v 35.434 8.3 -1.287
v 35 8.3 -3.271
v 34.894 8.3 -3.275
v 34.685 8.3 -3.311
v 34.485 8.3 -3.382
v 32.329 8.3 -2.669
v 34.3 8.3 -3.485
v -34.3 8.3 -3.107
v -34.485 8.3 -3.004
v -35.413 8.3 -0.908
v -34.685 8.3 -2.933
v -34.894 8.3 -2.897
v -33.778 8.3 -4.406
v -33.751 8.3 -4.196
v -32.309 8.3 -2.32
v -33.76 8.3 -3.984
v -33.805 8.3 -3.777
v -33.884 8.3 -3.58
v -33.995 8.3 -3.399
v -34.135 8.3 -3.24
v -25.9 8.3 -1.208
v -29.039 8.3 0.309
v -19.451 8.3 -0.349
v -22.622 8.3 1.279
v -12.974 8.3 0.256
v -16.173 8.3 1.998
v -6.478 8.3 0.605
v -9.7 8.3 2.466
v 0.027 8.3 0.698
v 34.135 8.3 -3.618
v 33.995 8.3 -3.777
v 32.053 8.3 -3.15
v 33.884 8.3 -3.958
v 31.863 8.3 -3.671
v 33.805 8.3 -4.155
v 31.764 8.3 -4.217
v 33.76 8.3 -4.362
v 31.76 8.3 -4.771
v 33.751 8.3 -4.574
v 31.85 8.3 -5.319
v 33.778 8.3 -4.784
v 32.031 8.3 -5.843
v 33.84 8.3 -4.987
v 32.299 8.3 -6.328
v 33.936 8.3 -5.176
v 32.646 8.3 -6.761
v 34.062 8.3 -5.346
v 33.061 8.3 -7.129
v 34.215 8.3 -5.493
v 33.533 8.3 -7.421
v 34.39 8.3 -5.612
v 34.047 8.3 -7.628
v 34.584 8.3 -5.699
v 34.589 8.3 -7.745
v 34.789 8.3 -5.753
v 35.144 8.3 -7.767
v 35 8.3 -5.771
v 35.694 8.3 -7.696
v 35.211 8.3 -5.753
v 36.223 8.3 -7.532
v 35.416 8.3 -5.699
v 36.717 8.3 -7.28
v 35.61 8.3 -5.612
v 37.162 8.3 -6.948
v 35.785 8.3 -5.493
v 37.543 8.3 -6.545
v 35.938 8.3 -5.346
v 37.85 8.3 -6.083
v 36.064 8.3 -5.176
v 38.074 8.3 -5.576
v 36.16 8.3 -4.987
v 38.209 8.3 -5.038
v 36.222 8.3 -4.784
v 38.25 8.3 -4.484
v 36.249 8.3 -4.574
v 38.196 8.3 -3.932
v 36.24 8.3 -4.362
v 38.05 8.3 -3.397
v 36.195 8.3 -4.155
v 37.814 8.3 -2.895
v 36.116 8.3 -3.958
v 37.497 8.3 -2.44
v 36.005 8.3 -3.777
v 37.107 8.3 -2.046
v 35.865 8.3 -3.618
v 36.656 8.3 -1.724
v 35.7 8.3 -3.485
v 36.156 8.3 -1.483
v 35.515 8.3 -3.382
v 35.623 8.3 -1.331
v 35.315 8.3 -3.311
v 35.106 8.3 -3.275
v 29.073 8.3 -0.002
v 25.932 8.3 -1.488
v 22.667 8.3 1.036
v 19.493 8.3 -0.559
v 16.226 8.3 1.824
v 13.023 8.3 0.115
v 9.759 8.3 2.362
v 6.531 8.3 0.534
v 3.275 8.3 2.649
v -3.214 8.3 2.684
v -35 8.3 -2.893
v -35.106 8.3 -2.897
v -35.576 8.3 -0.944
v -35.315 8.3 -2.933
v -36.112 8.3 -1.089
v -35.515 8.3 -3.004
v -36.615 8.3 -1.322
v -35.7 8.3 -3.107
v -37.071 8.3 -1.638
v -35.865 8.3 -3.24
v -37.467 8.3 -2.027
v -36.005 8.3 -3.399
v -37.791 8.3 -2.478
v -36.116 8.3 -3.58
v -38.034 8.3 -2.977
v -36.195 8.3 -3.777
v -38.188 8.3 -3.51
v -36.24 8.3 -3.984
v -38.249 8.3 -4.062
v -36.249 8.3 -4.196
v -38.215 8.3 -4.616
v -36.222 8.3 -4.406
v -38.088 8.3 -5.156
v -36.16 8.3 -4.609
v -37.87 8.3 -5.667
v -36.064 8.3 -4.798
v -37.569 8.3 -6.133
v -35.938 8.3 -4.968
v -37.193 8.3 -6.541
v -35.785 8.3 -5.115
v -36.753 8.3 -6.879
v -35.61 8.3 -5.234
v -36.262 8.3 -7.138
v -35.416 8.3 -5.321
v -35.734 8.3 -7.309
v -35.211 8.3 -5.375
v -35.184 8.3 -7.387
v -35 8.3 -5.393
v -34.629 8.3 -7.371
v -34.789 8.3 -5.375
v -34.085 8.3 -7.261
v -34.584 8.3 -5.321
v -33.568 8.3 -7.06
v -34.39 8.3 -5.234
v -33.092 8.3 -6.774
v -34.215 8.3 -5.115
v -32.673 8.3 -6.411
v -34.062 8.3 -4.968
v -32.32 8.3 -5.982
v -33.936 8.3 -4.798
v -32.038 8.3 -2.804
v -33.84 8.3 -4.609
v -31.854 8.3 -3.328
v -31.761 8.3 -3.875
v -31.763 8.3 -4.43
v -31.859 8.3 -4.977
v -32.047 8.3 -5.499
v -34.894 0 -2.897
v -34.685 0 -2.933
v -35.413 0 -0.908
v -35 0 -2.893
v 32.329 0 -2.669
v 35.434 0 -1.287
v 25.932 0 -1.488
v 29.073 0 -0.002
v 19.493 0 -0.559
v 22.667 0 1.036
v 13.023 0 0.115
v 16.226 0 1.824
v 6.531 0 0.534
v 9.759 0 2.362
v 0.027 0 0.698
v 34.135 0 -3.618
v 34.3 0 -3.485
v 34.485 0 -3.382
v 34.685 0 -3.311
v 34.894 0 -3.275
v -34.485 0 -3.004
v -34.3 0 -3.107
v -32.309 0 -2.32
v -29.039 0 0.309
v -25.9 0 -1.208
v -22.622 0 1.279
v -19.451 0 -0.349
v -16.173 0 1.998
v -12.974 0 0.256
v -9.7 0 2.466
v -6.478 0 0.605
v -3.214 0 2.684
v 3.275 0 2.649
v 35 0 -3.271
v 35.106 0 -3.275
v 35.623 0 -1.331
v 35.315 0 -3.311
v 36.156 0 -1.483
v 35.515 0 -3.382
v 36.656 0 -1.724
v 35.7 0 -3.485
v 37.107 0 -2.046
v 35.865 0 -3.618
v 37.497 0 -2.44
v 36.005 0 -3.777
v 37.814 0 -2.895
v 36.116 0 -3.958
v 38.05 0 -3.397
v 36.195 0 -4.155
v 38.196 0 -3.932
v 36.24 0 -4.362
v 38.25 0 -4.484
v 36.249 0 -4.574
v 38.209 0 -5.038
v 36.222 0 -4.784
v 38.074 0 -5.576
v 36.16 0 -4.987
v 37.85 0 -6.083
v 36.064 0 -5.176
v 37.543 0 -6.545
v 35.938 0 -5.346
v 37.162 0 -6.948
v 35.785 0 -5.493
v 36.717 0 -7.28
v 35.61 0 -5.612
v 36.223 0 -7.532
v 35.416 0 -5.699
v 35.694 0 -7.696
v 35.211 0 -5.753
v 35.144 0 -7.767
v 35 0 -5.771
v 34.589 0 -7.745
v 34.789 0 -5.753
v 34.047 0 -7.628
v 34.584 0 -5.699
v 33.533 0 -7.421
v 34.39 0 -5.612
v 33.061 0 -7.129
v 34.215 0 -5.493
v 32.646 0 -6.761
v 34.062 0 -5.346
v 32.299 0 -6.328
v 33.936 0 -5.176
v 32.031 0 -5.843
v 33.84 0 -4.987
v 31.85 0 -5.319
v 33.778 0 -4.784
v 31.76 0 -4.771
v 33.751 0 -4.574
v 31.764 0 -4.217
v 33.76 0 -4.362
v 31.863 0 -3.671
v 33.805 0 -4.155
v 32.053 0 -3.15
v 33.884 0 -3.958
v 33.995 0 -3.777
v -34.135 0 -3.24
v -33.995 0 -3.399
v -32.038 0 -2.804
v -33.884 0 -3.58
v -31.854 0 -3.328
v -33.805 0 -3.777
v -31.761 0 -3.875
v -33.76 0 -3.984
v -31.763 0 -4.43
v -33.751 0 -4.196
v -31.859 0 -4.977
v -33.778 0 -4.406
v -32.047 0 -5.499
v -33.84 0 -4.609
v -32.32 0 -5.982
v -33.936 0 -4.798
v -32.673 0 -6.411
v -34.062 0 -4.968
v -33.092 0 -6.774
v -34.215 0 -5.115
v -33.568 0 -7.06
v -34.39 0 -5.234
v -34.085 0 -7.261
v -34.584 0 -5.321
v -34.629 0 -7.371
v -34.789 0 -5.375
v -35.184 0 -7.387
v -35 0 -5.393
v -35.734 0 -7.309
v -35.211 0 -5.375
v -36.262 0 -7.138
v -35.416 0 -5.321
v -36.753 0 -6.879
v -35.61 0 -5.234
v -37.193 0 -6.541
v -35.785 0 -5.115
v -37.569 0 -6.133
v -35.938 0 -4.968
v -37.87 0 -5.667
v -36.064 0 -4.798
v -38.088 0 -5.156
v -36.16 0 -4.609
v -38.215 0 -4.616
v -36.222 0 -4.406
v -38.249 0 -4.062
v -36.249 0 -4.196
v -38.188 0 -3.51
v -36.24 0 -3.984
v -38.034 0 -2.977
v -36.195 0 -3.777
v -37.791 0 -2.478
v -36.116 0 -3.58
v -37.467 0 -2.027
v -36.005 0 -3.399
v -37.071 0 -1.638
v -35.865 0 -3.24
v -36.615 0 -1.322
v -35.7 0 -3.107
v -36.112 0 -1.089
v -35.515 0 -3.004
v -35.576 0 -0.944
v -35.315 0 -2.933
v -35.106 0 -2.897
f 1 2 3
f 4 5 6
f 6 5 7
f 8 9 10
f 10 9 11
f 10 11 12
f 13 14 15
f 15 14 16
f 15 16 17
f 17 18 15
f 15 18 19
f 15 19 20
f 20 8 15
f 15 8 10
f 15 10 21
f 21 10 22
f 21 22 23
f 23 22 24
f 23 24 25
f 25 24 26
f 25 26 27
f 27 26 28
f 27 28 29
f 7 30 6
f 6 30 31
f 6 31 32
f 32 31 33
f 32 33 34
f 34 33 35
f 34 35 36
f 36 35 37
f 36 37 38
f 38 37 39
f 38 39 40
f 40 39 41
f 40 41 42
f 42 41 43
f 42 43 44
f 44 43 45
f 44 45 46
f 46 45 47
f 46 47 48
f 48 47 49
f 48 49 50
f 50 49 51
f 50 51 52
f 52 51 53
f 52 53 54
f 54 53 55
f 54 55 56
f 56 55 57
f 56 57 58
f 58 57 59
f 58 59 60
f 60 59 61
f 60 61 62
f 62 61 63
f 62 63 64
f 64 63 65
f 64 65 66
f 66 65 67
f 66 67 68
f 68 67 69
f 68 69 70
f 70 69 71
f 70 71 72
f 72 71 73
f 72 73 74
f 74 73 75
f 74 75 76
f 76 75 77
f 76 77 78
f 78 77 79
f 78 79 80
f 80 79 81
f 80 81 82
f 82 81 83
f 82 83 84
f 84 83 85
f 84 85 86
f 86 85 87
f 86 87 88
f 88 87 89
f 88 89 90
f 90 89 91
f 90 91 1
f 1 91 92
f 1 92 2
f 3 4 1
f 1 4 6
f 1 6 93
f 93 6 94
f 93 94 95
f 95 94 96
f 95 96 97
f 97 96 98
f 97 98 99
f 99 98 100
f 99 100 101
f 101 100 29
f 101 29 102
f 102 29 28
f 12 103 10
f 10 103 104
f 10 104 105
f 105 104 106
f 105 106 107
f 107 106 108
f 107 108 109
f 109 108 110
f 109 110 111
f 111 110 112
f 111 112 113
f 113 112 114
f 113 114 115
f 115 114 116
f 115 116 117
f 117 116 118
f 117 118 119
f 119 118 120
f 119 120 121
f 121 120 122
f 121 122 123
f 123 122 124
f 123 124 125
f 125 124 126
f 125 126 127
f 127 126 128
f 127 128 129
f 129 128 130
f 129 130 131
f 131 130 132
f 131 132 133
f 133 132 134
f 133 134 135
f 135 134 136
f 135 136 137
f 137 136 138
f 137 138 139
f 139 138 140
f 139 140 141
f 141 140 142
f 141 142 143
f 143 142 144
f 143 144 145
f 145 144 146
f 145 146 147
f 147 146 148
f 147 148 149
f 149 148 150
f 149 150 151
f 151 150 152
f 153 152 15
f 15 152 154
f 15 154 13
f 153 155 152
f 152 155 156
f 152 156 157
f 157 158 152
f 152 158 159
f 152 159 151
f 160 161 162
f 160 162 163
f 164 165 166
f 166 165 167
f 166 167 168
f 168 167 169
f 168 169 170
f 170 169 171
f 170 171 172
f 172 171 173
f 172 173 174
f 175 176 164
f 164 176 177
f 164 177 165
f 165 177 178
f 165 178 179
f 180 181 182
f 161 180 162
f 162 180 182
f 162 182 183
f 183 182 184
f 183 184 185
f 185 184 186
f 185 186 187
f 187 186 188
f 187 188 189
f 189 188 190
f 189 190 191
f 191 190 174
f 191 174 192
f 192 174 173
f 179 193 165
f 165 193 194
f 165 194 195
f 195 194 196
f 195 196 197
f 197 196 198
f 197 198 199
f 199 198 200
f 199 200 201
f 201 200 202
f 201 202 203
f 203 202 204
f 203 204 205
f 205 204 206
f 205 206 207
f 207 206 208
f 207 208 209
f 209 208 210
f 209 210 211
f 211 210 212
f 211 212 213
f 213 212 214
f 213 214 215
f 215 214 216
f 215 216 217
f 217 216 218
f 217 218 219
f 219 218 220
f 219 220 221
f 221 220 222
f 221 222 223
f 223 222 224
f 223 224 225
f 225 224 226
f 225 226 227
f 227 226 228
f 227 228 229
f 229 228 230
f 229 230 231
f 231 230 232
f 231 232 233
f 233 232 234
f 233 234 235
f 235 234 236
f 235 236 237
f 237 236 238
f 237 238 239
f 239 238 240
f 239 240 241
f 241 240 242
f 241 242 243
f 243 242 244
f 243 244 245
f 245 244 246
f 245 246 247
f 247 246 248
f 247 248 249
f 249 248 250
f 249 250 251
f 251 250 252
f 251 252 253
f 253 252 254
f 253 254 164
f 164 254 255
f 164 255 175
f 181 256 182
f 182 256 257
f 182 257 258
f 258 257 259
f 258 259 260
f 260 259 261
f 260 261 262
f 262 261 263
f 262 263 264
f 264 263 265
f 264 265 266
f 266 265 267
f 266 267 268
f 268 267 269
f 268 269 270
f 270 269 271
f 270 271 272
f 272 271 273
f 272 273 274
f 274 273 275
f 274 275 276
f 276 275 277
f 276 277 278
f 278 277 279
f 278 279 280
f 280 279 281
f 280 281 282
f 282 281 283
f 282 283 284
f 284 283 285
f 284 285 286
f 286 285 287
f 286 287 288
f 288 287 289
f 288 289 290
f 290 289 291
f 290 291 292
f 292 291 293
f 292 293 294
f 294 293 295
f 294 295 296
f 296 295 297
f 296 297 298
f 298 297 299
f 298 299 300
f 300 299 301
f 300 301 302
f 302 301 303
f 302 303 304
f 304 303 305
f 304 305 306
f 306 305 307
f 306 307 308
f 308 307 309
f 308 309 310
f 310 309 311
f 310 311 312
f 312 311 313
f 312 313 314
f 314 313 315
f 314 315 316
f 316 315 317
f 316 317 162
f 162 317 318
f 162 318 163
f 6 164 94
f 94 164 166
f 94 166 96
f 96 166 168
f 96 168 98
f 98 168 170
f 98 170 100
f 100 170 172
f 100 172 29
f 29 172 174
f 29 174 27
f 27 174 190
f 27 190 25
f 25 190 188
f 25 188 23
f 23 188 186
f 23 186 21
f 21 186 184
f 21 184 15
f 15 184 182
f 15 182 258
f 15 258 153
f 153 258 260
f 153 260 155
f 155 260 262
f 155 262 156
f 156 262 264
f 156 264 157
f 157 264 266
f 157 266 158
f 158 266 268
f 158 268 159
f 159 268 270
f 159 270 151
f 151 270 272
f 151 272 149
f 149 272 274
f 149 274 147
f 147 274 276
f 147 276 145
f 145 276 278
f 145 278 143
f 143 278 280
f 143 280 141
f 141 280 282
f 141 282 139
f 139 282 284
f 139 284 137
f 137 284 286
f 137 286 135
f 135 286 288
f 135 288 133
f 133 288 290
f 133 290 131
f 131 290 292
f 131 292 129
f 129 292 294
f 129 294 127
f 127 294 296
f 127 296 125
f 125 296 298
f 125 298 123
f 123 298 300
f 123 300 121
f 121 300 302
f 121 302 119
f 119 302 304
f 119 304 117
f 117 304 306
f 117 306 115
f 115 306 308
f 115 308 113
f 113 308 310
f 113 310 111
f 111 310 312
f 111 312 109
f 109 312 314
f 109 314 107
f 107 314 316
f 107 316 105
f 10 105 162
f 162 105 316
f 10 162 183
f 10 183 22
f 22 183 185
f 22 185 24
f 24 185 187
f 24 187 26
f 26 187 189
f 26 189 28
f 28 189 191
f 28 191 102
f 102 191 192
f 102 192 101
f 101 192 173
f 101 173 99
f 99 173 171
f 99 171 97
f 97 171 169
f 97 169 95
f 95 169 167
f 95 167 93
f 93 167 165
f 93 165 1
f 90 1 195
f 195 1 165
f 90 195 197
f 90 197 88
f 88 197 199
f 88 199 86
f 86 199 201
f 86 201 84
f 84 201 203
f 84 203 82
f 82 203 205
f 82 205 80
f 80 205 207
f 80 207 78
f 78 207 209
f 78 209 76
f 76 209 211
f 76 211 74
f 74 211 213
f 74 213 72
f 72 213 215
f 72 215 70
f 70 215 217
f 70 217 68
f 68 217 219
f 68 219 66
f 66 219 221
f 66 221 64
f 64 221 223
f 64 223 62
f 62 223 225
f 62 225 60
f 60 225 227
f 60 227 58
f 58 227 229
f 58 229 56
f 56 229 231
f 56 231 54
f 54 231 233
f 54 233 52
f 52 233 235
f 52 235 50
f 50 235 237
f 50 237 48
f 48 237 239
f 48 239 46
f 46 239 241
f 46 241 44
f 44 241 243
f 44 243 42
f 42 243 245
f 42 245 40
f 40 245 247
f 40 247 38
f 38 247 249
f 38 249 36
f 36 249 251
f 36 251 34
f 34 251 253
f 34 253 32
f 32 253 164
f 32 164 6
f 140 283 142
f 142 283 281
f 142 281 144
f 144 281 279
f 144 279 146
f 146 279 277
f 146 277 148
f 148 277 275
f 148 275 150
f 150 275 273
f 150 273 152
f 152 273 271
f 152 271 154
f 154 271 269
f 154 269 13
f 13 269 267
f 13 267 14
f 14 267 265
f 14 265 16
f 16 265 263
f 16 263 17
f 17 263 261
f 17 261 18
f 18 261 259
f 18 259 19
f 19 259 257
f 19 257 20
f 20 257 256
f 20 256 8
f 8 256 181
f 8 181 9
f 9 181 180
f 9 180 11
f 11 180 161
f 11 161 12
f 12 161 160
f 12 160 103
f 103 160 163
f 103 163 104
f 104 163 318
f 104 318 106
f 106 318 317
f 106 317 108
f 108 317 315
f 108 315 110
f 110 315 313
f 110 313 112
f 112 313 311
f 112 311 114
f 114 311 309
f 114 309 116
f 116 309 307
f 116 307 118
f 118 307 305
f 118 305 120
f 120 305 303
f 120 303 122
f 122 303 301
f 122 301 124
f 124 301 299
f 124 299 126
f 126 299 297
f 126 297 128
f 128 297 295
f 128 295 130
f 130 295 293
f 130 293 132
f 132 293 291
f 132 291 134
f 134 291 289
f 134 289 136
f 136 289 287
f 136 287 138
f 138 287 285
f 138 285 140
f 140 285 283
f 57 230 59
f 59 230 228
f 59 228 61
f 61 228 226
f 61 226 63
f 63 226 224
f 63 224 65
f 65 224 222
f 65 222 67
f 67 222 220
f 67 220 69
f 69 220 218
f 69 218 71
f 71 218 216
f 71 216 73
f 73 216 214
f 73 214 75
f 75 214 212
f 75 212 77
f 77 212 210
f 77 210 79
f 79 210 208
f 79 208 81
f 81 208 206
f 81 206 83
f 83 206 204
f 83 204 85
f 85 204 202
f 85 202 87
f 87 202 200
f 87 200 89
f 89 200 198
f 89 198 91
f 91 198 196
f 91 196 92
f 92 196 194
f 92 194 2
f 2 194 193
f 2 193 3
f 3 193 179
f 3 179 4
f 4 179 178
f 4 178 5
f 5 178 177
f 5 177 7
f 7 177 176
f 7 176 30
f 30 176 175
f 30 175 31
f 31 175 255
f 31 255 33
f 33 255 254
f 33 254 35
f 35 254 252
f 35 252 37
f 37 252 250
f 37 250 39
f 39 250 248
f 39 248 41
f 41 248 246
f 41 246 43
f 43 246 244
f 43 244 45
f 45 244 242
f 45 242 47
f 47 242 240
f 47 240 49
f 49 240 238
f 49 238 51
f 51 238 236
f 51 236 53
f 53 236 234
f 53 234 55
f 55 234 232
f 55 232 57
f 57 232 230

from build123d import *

# Parameters (mm, degrees)
SKETCH1_R           = 1.25
BOSS_EXTRUDE1_DEPTH = 8.3


with BuildPart() as part:
    # Sketch1 → Boss-Extrude1 (new body)
    with BuildSketch(Plane(origin=(0, 0, 0), x_dir=(1, 0, 0), z_dir=(0, 1, 0))):
        with BuildLine():
            Line((35.434172296, 1.287491613), (35.622727971, 1.3307936))
            ThreePointArc((35.622727971, 1.3307936), (36.223294794, 7.531563888), (32.32905872, 2.668935167))
            ThreePointArc((32.32905872, 2.668935167), (0.027157554, -0.697665471), (-32.309217612, 2.319893124))
            ThreePointArc((-32.309217612, 2.319893124), (-36.261610619, 7.13771657), (-35.575715837, 0.943979283))
            Line((-35.575715837, 0.943979283), (-35.413230424, 0.907951956))
            ThreePointArc((-35.413230424, 0.907951956), (0.030803418, -2.69767479), (35.434172296, 1.287491613))
        make_face()
        with Locations((-35, 4.142580739)):
            Circle(SKETCH1_R, mode=Mode.SUBTRACT)
        with Locations((35, 4.520575704)):
            Circle(SKETCH1_R, mode=Mode.SUBTRACT)
    extrude(amount=BOSS_EXTRUDE1_DEPTH)


solid = part.part
